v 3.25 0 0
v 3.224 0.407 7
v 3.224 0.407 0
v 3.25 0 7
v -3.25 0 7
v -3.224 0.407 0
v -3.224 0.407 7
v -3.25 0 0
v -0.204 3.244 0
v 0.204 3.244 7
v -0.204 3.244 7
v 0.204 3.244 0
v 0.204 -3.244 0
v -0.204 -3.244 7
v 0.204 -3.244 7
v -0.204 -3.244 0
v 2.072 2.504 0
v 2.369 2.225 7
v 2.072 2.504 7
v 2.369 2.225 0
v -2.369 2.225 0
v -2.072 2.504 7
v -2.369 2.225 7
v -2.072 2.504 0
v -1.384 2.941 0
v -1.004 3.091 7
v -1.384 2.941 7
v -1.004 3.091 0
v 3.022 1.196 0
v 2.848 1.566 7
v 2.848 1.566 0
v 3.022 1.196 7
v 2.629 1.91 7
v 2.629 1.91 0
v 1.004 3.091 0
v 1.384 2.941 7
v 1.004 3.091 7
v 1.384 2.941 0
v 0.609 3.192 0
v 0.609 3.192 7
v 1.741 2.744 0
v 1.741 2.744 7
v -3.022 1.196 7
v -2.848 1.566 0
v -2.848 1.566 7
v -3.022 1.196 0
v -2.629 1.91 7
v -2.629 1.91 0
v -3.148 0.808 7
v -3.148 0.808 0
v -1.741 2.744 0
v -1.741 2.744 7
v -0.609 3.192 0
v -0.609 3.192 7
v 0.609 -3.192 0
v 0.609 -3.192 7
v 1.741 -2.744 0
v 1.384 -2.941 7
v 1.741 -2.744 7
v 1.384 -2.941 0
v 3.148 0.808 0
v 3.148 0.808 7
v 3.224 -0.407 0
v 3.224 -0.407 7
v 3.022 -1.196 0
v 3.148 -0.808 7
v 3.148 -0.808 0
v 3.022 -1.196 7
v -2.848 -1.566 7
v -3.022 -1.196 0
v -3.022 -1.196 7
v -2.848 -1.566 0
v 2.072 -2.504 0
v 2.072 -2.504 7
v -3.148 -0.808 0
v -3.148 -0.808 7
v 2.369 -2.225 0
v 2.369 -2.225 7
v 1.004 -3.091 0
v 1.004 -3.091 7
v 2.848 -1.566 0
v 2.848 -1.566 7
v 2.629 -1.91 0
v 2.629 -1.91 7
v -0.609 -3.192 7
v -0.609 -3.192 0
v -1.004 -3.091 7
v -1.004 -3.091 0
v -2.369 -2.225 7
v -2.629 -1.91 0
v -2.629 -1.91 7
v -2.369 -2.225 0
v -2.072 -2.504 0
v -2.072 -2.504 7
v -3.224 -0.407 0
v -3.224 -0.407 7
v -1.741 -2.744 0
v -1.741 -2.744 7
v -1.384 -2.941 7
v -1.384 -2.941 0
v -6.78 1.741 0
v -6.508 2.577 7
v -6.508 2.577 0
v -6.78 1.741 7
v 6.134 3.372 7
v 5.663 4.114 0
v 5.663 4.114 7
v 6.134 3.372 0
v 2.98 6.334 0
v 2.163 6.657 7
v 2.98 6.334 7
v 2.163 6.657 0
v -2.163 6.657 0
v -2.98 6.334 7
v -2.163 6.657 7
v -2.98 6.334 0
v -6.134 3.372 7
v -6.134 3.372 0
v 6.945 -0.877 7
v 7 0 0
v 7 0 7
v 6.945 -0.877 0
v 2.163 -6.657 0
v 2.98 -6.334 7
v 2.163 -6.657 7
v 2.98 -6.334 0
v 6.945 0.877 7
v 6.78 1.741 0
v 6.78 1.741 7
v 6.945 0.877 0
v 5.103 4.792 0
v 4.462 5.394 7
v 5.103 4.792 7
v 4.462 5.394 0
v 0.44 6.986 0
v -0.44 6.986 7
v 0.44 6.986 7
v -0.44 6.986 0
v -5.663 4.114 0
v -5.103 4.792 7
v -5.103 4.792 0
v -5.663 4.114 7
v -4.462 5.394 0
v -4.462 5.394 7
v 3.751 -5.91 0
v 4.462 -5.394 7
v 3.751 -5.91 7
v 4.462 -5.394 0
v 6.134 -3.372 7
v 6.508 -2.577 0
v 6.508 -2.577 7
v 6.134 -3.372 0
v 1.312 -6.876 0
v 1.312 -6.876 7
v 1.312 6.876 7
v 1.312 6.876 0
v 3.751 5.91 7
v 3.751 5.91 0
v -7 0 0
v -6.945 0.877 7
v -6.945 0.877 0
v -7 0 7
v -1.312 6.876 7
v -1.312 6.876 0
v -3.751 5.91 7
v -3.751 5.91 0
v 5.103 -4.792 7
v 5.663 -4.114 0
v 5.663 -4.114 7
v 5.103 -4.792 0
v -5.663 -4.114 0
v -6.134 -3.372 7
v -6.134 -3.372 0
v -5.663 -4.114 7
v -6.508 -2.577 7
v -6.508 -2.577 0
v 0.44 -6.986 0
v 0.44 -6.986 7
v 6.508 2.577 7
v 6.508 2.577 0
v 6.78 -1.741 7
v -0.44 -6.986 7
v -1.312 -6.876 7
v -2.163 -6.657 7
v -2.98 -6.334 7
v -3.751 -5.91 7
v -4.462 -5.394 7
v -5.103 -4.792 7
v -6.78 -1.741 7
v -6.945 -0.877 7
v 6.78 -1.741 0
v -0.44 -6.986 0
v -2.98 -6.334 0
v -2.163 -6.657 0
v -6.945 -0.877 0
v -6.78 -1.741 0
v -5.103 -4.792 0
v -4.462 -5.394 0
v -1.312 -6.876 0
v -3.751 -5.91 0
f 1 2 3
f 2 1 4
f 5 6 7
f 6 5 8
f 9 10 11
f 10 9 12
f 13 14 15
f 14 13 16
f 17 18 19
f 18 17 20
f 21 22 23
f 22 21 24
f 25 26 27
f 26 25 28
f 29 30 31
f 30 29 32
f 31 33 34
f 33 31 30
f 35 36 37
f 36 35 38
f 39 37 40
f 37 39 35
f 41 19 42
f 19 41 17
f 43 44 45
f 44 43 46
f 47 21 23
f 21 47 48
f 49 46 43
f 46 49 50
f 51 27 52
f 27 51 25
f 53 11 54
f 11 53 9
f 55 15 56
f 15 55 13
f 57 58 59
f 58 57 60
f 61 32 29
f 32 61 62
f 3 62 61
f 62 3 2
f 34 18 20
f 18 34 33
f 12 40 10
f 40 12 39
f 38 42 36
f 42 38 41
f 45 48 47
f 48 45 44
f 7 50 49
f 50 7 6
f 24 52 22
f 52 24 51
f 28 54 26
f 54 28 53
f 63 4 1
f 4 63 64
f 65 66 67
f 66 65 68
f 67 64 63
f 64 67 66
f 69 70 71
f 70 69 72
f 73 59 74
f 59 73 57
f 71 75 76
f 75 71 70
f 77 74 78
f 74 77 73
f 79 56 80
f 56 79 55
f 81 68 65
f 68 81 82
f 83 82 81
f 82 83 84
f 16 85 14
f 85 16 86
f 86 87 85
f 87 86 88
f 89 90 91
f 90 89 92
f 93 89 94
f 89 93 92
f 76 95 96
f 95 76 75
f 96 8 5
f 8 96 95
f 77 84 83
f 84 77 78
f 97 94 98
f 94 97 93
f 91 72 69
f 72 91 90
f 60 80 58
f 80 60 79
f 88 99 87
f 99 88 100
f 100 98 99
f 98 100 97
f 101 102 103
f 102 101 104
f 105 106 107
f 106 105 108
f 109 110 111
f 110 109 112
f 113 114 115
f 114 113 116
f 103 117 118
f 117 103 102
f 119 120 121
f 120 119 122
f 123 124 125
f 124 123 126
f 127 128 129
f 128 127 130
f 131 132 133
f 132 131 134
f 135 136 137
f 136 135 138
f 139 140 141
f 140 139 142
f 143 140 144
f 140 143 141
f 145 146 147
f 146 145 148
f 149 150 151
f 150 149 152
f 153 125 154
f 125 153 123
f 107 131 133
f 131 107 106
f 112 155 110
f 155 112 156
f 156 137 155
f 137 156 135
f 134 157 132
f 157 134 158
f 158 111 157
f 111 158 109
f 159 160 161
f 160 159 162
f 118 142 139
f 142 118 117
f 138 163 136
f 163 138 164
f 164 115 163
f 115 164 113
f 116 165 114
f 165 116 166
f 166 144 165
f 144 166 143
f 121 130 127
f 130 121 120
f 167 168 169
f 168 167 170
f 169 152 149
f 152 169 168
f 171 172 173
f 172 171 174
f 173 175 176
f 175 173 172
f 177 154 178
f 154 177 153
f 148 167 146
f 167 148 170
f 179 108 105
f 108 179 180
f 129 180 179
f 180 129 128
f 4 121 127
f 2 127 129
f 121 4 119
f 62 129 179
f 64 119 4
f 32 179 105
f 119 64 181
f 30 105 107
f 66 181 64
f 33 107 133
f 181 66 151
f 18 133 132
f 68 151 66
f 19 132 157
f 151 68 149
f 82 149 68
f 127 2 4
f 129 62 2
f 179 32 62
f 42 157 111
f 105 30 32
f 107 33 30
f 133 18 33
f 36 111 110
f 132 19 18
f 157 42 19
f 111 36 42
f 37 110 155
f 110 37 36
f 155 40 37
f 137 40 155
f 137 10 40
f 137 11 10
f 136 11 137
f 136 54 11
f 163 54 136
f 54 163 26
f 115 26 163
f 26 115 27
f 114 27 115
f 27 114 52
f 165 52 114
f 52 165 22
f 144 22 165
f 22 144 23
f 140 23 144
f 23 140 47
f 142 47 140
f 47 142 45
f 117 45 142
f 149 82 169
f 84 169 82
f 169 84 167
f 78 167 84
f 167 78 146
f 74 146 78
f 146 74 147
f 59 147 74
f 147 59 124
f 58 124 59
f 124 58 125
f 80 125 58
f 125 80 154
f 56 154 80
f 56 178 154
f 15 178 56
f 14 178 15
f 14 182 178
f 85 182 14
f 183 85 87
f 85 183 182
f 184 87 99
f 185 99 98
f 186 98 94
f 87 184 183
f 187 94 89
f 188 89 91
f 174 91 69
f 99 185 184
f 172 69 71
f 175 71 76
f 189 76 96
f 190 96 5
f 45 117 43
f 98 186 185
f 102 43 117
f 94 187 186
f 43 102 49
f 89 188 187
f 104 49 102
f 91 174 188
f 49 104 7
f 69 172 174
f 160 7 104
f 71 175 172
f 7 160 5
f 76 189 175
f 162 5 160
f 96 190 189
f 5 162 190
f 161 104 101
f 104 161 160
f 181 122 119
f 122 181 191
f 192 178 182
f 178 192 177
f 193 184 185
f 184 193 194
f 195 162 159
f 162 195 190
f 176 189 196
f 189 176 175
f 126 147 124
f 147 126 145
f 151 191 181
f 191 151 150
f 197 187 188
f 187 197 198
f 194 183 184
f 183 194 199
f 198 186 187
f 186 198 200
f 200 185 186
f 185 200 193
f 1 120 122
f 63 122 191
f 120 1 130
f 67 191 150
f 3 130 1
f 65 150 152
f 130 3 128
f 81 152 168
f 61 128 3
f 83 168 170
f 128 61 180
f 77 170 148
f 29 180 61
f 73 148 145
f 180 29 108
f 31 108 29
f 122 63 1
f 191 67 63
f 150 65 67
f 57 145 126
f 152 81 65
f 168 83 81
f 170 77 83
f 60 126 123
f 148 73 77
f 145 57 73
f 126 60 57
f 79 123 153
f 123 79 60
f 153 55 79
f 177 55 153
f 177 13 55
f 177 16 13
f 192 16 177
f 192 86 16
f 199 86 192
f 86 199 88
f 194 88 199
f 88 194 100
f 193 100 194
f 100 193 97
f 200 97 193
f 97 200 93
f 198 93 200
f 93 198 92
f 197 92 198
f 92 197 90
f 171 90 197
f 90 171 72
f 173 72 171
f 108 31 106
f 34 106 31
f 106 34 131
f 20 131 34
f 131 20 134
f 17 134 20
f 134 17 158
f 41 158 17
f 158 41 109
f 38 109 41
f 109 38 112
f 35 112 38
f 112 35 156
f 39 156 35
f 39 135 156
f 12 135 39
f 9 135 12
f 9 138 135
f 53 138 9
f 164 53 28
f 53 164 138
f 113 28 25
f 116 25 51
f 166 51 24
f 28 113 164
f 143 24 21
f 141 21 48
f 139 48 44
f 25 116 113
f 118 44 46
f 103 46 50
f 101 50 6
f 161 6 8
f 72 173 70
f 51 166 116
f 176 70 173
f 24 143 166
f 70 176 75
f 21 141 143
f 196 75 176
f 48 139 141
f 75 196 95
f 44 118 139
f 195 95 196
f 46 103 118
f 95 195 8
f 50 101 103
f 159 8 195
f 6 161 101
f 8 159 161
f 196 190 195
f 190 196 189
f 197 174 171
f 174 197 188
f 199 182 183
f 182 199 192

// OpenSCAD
$fn = 50;


difference() {
	union() {
		cylinder(h = 7, r = 7.0000000000);
	}
	union() {
		translate(v = [0, 0, -100]) {
			cylinder(h = 200, r = 3.2500000000);
		}
		translate(v = [0, 0, -100]) {
			cylinder(h = 200, r = 1.8000000000);
		}
	}
}
